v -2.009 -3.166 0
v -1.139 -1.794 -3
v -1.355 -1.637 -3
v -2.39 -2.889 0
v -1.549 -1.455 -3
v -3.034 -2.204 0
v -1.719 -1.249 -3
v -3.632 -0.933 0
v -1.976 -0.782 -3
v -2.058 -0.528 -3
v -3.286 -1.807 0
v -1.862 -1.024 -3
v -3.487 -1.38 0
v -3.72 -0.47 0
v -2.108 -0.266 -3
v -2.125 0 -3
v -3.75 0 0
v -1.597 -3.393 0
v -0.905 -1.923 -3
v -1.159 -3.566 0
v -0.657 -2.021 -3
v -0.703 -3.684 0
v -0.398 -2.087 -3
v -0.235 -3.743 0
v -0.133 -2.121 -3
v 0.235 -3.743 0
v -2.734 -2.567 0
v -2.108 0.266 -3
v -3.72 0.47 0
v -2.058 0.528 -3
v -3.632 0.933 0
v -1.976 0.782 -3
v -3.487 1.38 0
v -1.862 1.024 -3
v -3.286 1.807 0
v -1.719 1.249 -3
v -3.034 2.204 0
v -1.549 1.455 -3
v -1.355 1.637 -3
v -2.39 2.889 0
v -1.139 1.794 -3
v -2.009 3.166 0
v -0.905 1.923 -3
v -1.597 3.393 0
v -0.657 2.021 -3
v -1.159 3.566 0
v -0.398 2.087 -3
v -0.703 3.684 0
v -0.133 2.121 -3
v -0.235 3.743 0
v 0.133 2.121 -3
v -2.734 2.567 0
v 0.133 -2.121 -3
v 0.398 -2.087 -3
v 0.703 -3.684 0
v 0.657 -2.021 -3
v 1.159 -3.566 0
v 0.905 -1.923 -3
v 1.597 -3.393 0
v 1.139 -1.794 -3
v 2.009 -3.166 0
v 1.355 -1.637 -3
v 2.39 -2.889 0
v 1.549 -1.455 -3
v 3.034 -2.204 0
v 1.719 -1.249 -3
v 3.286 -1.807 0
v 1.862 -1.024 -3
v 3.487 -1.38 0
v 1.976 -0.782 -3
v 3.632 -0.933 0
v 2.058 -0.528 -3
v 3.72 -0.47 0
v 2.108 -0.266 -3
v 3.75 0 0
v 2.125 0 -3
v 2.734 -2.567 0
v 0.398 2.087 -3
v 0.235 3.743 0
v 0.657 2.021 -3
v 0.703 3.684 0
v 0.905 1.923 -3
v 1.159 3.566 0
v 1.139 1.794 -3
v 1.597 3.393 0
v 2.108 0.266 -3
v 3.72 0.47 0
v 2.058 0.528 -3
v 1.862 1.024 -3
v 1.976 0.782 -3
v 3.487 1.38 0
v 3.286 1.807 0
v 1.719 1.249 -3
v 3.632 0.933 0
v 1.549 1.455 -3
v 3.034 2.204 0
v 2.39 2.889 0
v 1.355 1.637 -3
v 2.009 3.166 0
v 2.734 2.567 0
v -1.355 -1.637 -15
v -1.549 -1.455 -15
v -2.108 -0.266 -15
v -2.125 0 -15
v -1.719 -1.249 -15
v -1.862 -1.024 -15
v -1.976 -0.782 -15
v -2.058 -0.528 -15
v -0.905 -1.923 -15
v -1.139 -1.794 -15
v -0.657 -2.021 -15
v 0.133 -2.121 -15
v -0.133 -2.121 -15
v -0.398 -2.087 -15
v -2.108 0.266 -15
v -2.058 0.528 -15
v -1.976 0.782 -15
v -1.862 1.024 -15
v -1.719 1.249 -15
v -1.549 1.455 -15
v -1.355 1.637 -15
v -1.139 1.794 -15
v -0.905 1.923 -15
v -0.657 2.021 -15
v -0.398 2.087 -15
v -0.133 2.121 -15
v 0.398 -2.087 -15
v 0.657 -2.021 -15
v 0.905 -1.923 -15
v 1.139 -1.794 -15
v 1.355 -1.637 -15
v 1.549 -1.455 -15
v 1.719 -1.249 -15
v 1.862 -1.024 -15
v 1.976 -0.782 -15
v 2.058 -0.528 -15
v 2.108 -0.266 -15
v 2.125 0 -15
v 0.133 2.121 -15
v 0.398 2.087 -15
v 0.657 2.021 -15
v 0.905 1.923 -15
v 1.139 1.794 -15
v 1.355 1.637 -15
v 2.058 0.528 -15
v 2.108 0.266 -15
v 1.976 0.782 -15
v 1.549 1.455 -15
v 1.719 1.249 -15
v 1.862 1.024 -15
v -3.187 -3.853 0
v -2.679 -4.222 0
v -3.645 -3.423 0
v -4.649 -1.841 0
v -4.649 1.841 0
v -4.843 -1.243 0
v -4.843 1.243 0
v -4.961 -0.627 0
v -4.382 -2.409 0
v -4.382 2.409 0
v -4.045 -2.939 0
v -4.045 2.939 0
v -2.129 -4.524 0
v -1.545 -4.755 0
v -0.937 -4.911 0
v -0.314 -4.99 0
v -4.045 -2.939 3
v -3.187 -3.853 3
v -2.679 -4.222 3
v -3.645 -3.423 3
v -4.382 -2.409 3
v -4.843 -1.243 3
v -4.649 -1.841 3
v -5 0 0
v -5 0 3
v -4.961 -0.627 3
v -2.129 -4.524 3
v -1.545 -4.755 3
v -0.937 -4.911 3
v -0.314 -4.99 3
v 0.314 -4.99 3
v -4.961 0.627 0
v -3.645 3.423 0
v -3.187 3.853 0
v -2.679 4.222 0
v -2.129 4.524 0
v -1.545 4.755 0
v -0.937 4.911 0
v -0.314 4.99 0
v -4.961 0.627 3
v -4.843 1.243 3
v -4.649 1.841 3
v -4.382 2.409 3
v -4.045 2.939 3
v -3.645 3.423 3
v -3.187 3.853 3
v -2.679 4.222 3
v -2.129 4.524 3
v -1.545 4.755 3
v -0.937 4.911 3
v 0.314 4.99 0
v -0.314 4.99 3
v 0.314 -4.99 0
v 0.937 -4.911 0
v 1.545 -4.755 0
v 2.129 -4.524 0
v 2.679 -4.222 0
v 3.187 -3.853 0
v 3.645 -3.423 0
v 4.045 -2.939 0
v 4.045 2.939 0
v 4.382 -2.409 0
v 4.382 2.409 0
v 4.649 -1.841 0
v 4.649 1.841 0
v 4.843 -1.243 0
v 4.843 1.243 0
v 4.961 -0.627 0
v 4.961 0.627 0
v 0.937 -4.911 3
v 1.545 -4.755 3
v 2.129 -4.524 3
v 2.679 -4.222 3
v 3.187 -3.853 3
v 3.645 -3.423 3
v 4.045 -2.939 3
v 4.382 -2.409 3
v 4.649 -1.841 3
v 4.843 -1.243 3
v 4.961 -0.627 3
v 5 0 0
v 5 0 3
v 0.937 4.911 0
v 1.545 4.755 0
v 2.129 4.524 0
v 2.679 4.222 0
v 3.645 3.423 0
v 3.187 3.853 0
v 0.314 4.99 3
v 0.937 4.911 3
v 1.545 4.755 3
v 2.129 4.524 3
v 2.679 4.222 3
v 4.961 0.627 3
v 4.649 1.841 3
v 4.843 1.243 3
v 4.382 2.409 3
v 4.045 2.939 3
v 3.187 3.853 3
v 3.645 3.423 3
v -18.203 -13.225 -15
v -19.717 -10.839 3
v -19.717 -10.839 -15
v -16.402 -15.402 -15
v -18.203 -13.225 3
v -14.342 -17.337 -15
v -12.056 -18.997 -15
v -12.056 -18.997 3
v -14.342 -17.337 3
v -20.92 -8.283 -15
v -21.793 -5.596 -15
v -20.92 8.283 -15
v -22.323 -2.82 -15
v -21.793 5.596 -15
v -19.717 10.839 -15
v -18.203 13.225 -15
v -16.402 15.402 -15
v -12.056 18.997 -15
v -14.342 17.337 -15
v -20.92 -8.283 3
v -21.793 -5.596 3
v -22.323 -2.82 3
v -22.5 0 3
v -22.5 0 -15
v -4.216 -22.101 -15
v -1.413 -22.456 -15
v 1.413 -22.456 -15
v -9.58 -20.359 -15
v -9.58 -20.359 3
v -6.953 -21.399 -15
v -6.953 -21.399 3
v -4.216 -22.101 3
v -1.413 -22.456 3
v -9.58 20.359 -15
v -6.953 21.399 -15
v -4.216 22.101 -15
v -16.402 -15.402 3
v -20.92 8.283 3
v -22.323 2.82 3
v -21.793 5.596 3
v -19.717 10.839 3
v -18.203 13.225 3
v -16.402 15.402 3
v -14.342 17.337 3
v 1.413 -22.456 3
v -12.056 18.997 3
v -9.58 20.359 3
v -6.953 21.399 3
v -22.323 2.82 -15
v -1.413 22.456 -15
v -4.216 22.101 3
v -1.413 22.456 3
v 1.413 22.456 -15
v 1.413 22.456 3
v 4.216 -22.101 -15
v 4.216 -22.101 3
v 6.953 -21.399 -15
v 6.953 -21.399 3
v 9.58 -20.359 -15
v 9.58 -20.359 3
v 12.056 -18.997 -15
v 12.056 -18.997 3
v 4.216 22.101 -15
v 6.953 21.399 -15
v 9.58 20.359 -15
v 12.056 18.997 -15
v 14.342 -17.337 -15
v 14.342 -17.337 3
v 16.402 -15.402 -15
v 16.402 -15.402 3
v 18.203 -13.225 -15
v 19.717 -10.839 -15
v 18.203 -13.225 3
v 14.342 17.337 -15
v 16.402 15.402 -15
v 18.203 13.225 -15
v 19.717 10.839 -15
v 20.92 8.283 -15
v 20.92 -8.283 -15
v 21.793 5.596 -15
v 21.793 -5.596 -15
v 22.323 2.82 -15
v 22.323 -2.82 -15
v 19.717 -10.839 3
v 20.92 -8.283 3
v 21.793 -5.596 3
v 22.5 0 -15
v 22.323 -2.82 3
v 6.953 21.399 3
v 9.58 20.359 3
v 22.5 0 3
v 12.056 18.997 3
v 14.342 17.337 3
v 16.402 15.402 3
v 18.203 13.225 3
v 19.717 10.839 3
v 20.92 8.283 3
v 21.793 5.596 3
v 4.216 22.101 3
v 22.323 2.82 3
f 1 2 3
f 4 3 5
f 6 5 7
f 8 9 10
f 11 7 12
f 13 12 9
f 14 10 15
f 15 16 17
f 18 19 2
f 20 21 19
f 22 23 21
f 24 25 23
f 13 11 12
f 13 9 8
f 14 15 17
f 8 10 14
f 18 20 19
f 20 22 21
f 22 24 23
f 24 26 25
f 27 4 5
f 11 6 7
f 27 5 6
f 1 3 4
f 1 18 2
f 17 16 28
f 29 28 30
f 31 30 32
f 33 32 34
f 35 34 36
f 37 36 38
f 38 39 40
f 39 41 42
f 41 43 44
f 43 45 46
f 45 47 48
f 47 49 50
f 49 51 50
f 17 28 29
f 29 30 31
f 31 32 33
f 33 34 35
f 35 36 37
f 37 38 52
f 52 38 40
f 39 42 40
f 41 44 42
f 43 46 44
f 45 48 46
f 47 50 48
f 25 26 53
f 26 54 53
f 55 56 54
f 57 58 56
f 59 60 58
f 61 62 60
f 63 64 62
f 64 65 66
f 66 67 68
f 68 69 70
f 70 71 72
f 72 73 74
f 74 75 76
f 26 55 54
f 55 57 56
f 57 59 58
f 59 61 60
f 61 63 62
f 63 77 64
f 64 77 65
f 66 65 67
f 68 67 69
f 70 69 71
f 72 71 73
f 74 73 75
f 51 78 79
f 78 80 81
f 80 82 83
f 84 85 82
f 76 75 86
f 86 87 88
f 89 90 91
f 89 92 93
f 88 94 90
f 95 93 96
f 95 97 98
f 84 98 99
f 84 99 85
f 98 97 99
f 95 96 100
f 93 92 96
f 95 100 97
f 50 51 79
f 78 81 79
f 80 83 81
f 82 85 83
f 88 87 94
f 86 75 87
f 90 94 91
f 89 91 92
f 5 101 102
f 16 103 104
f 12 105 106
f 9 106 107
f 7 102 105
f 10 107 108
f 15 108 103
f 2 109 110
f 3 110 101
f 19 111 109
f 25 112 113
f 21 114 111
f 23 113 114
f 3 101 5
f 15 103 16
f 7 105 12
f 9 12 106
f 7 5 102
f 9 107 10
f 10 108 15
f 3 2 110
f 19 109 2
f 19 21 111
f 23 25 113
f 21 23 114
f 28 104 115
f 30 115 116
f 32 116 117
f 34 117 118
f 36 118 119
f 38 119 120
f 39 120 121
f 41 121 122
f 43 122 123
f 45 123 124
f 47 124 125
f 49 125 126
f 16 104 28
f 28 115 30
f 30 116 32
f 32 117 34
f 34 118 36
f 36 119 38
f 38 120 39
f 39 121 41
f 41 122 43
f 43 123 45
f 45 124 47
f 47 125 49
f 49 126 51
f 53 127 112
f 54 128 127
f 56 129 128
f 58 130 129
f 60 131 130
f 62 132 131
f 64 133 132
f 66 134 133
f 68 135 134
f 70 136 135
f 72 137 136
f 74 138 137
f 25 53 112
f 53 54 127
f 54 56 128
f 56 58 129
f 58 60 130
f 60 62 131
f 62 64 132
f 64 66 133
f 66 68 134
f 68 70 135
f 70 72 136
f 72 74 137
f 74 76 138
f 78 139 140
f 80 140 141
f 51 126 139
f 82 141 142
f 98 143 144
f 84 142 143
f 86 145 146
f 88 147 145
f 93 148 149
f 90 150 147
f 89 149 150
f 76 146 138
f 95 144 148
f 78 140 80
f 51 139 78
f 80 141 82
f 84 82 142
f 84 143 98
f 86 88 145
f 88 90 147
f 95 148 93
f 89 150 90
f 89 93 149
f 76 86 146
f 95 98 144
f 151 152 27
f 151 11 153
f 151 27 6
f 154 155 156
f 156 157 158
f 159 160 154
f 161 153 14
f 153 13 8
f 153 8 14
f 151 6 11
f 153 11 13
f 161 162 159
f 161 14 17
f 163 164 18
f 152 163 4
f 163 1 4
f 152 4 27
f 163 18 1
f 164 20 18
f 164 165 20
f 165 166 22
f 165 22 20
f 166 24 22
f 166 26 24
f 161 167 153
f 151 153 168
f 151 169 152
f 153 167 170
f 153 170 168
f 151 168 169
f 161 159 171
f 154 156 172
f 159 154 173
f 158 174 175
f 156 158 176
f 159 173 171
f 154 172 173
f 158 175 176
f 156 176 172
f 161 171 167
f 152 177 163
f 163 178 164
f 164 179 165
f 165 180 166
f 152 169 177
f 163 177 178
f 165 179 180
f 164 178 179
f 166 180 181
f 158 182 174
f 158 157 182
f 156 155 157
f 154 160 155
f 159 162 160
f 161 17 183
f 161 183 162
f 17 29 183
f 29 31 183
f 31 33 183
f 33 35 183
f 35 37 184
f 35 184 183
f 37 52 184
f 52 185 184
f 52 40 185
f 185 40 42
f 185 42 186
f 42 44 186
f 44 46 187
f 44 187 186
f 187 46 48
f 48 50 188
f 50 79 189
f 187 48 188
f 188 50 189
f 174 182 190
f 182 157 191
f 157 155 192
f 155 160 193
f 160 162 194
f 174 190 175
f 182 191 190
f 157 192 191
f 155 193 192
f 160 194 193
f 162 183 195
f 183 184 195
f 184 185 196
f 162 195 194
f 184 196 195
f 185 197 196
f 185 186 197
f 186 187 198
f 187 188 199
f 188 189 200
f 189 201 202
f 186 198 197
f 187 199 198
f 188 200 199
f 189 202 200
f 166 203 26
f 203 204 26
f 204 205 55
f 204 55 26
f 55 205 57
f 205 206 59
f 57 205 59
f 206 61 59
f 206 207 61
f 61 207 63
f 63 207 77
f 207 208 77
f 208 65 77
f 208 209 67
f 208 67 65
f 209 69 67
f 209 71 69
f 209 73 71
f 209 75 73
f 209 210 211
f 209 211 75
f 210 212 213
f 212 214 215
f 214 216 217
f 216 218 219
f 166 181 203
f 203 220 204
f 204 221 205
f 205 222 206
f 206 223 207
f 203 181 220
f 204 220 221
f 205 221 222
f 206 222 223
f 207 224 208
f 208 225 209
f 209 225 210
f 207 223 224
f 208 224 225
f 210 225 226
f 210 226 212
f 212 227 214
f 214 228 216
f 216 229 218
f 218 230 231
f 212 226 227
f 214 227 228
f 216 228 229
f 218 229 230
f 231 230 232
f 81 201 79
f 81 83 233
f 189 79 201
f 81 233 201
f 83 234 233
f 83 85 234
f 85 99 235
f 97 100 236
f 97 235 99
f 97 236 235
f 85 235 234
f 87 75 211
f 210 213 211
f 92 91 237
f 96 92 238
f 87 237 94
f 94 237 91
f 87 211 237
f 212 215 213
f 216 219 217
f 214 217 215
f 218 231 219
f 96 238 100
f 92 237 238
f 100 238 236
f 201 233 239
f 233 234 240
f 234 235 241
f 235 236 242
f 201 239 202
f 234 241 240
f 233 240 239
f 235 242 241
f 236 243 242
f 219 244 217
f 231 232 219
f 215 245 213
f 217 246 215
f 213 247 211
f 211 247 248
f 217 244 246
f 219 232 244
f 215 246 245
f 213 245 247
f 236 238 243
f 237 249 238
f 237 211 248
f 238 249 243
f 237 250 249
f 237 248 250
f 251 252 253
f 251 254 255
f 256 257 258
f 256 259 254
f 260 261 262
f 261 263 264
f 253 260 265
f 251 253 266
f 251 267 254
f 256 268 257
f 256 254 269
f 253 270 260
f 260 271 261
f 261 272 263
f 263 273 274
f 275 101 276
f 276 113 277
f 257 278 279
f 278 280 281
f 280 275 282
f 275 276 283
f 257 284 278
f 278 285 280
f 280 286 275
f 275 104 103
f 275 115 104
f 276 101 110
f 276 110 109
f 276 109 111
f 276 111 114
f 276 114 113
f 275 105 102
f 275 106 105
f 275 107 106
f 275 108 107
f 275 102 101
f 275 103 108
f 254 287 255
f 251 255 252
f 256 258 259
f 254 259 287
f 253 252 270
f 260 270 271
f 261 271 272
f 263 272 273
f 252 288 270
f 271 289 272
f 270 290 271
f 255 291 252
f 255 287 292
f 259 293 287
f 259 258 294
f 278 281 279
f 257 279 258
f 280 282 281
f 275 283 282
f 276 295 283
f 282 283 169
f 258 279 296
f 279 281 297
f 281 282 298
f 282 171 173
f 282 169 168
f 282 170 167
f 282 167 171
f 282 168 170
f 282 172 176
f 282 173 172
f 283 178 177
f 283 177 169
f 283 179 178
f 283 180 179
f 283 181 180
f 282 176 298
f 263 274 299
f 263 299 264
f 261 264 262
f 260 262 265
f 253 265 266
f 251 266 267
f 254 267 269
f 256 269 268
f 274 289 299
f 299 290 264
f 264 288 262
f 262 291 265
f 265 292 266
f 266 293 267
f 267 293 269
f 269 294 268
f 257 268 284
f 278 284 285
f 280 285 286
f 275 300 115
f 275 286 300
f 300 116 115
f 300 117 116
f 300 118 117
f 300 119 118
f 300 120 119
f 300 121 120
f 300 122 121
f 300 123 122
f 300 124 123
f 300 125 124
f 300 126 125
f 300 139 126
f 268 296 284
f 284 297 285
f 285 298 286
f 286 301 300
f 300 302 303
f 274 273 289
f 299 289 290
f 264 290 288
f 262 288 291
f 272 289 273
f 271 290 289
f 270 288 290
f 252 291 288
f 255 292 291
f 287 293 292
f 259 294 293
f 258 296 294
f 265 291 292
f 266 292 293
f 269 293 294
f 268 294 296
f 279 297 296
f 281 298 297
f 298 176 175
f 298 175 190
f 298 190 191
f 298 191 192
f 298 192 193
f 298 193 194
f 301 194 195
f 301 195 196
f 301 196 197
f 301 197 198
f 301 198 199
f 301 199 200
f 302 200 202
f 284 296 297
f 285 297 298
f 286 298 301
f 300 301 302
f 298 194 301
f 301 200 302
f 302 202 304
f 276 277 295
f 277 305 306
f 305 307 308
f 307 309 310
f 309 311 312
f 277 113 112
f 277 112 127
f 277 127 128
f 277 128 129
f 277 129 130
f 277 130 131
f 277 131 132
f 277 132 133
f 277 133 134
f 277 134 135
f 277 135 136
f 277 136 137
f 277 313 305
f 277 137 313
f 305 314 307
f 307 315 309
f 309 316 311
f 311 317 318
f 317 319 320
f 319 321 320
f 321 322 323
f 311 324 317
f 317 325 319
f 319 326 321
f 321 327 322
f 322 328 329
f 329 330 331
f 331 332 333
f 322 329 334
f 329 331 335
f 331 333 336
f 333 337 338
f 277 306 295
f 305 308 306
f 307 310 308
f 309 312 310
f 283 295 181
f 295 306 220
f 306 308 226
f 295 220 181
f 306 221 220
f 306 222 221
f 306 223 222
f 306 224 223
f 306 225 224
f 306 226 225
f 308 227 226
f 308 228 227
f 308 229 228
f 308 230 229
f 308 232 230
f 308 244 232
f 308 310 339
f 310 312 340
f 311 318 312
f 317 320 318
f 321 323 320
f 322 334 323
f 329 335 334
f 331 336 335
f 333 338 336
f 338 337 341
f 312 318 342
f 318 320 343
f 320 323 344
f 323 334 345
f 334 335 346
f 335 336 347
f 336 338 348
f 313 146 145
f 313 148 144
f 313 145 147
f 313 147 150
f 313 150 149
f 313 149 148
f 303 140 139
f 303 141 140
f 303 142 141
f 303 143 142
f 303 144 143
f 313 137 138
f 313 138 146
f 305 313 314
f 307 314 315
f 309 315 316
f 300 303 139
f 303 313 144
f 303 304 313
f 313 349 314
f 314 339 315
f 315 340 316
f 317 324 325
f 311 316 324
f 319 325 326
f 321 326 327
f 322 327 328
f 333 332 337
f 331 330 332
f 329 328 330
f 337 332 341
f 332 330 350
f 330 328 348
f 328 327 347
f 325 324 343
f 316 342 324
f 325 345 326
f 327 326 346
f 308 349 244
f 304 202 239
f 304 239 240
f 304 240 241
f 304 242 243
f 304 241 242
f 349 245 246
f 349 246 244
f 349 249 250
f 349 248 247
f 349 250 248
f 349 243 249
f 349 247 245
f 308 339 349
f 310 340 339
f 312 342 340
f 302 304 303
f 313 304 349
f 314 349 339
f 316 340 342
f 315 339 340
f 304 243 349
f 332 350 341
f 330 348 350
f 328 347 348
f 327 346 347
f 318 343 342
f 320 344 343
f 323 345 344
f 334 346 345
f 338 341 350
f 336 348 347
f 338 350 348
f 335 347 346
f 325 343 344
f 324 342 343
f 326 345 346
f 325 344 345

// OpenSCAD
$fn = 50;

difference() {
	union() {
		translate(v = [0, 0, -15.0]) {
			cylinder(h = 18, r = 22.5);
		}
	}
	union() {
		translate(v = [0, 0, 0]) {
			rotate(a = [0, 0, 0]) {
				difference() {
					union() {
						translate(v = [0, 0, -18.0]) {
							cylinder(h = 18, r = 2.0);
						}
						translate(v = [0, 0, -3]) {
							cylinder(h = 3, r1 = 2.125, r2 = 3.75);
						}
						translate(v = [0, 0, -18.0]) {
							cylinder(h = 18, r = 2.125);
						}
						translate(v = [0, 0, -18.0]) {
							cylinder(h = 18, r = 2.0);
						}
					}
					union();
				}
			}
		}
		#cylinder(h = 3, r = 5.0);
	}
}
